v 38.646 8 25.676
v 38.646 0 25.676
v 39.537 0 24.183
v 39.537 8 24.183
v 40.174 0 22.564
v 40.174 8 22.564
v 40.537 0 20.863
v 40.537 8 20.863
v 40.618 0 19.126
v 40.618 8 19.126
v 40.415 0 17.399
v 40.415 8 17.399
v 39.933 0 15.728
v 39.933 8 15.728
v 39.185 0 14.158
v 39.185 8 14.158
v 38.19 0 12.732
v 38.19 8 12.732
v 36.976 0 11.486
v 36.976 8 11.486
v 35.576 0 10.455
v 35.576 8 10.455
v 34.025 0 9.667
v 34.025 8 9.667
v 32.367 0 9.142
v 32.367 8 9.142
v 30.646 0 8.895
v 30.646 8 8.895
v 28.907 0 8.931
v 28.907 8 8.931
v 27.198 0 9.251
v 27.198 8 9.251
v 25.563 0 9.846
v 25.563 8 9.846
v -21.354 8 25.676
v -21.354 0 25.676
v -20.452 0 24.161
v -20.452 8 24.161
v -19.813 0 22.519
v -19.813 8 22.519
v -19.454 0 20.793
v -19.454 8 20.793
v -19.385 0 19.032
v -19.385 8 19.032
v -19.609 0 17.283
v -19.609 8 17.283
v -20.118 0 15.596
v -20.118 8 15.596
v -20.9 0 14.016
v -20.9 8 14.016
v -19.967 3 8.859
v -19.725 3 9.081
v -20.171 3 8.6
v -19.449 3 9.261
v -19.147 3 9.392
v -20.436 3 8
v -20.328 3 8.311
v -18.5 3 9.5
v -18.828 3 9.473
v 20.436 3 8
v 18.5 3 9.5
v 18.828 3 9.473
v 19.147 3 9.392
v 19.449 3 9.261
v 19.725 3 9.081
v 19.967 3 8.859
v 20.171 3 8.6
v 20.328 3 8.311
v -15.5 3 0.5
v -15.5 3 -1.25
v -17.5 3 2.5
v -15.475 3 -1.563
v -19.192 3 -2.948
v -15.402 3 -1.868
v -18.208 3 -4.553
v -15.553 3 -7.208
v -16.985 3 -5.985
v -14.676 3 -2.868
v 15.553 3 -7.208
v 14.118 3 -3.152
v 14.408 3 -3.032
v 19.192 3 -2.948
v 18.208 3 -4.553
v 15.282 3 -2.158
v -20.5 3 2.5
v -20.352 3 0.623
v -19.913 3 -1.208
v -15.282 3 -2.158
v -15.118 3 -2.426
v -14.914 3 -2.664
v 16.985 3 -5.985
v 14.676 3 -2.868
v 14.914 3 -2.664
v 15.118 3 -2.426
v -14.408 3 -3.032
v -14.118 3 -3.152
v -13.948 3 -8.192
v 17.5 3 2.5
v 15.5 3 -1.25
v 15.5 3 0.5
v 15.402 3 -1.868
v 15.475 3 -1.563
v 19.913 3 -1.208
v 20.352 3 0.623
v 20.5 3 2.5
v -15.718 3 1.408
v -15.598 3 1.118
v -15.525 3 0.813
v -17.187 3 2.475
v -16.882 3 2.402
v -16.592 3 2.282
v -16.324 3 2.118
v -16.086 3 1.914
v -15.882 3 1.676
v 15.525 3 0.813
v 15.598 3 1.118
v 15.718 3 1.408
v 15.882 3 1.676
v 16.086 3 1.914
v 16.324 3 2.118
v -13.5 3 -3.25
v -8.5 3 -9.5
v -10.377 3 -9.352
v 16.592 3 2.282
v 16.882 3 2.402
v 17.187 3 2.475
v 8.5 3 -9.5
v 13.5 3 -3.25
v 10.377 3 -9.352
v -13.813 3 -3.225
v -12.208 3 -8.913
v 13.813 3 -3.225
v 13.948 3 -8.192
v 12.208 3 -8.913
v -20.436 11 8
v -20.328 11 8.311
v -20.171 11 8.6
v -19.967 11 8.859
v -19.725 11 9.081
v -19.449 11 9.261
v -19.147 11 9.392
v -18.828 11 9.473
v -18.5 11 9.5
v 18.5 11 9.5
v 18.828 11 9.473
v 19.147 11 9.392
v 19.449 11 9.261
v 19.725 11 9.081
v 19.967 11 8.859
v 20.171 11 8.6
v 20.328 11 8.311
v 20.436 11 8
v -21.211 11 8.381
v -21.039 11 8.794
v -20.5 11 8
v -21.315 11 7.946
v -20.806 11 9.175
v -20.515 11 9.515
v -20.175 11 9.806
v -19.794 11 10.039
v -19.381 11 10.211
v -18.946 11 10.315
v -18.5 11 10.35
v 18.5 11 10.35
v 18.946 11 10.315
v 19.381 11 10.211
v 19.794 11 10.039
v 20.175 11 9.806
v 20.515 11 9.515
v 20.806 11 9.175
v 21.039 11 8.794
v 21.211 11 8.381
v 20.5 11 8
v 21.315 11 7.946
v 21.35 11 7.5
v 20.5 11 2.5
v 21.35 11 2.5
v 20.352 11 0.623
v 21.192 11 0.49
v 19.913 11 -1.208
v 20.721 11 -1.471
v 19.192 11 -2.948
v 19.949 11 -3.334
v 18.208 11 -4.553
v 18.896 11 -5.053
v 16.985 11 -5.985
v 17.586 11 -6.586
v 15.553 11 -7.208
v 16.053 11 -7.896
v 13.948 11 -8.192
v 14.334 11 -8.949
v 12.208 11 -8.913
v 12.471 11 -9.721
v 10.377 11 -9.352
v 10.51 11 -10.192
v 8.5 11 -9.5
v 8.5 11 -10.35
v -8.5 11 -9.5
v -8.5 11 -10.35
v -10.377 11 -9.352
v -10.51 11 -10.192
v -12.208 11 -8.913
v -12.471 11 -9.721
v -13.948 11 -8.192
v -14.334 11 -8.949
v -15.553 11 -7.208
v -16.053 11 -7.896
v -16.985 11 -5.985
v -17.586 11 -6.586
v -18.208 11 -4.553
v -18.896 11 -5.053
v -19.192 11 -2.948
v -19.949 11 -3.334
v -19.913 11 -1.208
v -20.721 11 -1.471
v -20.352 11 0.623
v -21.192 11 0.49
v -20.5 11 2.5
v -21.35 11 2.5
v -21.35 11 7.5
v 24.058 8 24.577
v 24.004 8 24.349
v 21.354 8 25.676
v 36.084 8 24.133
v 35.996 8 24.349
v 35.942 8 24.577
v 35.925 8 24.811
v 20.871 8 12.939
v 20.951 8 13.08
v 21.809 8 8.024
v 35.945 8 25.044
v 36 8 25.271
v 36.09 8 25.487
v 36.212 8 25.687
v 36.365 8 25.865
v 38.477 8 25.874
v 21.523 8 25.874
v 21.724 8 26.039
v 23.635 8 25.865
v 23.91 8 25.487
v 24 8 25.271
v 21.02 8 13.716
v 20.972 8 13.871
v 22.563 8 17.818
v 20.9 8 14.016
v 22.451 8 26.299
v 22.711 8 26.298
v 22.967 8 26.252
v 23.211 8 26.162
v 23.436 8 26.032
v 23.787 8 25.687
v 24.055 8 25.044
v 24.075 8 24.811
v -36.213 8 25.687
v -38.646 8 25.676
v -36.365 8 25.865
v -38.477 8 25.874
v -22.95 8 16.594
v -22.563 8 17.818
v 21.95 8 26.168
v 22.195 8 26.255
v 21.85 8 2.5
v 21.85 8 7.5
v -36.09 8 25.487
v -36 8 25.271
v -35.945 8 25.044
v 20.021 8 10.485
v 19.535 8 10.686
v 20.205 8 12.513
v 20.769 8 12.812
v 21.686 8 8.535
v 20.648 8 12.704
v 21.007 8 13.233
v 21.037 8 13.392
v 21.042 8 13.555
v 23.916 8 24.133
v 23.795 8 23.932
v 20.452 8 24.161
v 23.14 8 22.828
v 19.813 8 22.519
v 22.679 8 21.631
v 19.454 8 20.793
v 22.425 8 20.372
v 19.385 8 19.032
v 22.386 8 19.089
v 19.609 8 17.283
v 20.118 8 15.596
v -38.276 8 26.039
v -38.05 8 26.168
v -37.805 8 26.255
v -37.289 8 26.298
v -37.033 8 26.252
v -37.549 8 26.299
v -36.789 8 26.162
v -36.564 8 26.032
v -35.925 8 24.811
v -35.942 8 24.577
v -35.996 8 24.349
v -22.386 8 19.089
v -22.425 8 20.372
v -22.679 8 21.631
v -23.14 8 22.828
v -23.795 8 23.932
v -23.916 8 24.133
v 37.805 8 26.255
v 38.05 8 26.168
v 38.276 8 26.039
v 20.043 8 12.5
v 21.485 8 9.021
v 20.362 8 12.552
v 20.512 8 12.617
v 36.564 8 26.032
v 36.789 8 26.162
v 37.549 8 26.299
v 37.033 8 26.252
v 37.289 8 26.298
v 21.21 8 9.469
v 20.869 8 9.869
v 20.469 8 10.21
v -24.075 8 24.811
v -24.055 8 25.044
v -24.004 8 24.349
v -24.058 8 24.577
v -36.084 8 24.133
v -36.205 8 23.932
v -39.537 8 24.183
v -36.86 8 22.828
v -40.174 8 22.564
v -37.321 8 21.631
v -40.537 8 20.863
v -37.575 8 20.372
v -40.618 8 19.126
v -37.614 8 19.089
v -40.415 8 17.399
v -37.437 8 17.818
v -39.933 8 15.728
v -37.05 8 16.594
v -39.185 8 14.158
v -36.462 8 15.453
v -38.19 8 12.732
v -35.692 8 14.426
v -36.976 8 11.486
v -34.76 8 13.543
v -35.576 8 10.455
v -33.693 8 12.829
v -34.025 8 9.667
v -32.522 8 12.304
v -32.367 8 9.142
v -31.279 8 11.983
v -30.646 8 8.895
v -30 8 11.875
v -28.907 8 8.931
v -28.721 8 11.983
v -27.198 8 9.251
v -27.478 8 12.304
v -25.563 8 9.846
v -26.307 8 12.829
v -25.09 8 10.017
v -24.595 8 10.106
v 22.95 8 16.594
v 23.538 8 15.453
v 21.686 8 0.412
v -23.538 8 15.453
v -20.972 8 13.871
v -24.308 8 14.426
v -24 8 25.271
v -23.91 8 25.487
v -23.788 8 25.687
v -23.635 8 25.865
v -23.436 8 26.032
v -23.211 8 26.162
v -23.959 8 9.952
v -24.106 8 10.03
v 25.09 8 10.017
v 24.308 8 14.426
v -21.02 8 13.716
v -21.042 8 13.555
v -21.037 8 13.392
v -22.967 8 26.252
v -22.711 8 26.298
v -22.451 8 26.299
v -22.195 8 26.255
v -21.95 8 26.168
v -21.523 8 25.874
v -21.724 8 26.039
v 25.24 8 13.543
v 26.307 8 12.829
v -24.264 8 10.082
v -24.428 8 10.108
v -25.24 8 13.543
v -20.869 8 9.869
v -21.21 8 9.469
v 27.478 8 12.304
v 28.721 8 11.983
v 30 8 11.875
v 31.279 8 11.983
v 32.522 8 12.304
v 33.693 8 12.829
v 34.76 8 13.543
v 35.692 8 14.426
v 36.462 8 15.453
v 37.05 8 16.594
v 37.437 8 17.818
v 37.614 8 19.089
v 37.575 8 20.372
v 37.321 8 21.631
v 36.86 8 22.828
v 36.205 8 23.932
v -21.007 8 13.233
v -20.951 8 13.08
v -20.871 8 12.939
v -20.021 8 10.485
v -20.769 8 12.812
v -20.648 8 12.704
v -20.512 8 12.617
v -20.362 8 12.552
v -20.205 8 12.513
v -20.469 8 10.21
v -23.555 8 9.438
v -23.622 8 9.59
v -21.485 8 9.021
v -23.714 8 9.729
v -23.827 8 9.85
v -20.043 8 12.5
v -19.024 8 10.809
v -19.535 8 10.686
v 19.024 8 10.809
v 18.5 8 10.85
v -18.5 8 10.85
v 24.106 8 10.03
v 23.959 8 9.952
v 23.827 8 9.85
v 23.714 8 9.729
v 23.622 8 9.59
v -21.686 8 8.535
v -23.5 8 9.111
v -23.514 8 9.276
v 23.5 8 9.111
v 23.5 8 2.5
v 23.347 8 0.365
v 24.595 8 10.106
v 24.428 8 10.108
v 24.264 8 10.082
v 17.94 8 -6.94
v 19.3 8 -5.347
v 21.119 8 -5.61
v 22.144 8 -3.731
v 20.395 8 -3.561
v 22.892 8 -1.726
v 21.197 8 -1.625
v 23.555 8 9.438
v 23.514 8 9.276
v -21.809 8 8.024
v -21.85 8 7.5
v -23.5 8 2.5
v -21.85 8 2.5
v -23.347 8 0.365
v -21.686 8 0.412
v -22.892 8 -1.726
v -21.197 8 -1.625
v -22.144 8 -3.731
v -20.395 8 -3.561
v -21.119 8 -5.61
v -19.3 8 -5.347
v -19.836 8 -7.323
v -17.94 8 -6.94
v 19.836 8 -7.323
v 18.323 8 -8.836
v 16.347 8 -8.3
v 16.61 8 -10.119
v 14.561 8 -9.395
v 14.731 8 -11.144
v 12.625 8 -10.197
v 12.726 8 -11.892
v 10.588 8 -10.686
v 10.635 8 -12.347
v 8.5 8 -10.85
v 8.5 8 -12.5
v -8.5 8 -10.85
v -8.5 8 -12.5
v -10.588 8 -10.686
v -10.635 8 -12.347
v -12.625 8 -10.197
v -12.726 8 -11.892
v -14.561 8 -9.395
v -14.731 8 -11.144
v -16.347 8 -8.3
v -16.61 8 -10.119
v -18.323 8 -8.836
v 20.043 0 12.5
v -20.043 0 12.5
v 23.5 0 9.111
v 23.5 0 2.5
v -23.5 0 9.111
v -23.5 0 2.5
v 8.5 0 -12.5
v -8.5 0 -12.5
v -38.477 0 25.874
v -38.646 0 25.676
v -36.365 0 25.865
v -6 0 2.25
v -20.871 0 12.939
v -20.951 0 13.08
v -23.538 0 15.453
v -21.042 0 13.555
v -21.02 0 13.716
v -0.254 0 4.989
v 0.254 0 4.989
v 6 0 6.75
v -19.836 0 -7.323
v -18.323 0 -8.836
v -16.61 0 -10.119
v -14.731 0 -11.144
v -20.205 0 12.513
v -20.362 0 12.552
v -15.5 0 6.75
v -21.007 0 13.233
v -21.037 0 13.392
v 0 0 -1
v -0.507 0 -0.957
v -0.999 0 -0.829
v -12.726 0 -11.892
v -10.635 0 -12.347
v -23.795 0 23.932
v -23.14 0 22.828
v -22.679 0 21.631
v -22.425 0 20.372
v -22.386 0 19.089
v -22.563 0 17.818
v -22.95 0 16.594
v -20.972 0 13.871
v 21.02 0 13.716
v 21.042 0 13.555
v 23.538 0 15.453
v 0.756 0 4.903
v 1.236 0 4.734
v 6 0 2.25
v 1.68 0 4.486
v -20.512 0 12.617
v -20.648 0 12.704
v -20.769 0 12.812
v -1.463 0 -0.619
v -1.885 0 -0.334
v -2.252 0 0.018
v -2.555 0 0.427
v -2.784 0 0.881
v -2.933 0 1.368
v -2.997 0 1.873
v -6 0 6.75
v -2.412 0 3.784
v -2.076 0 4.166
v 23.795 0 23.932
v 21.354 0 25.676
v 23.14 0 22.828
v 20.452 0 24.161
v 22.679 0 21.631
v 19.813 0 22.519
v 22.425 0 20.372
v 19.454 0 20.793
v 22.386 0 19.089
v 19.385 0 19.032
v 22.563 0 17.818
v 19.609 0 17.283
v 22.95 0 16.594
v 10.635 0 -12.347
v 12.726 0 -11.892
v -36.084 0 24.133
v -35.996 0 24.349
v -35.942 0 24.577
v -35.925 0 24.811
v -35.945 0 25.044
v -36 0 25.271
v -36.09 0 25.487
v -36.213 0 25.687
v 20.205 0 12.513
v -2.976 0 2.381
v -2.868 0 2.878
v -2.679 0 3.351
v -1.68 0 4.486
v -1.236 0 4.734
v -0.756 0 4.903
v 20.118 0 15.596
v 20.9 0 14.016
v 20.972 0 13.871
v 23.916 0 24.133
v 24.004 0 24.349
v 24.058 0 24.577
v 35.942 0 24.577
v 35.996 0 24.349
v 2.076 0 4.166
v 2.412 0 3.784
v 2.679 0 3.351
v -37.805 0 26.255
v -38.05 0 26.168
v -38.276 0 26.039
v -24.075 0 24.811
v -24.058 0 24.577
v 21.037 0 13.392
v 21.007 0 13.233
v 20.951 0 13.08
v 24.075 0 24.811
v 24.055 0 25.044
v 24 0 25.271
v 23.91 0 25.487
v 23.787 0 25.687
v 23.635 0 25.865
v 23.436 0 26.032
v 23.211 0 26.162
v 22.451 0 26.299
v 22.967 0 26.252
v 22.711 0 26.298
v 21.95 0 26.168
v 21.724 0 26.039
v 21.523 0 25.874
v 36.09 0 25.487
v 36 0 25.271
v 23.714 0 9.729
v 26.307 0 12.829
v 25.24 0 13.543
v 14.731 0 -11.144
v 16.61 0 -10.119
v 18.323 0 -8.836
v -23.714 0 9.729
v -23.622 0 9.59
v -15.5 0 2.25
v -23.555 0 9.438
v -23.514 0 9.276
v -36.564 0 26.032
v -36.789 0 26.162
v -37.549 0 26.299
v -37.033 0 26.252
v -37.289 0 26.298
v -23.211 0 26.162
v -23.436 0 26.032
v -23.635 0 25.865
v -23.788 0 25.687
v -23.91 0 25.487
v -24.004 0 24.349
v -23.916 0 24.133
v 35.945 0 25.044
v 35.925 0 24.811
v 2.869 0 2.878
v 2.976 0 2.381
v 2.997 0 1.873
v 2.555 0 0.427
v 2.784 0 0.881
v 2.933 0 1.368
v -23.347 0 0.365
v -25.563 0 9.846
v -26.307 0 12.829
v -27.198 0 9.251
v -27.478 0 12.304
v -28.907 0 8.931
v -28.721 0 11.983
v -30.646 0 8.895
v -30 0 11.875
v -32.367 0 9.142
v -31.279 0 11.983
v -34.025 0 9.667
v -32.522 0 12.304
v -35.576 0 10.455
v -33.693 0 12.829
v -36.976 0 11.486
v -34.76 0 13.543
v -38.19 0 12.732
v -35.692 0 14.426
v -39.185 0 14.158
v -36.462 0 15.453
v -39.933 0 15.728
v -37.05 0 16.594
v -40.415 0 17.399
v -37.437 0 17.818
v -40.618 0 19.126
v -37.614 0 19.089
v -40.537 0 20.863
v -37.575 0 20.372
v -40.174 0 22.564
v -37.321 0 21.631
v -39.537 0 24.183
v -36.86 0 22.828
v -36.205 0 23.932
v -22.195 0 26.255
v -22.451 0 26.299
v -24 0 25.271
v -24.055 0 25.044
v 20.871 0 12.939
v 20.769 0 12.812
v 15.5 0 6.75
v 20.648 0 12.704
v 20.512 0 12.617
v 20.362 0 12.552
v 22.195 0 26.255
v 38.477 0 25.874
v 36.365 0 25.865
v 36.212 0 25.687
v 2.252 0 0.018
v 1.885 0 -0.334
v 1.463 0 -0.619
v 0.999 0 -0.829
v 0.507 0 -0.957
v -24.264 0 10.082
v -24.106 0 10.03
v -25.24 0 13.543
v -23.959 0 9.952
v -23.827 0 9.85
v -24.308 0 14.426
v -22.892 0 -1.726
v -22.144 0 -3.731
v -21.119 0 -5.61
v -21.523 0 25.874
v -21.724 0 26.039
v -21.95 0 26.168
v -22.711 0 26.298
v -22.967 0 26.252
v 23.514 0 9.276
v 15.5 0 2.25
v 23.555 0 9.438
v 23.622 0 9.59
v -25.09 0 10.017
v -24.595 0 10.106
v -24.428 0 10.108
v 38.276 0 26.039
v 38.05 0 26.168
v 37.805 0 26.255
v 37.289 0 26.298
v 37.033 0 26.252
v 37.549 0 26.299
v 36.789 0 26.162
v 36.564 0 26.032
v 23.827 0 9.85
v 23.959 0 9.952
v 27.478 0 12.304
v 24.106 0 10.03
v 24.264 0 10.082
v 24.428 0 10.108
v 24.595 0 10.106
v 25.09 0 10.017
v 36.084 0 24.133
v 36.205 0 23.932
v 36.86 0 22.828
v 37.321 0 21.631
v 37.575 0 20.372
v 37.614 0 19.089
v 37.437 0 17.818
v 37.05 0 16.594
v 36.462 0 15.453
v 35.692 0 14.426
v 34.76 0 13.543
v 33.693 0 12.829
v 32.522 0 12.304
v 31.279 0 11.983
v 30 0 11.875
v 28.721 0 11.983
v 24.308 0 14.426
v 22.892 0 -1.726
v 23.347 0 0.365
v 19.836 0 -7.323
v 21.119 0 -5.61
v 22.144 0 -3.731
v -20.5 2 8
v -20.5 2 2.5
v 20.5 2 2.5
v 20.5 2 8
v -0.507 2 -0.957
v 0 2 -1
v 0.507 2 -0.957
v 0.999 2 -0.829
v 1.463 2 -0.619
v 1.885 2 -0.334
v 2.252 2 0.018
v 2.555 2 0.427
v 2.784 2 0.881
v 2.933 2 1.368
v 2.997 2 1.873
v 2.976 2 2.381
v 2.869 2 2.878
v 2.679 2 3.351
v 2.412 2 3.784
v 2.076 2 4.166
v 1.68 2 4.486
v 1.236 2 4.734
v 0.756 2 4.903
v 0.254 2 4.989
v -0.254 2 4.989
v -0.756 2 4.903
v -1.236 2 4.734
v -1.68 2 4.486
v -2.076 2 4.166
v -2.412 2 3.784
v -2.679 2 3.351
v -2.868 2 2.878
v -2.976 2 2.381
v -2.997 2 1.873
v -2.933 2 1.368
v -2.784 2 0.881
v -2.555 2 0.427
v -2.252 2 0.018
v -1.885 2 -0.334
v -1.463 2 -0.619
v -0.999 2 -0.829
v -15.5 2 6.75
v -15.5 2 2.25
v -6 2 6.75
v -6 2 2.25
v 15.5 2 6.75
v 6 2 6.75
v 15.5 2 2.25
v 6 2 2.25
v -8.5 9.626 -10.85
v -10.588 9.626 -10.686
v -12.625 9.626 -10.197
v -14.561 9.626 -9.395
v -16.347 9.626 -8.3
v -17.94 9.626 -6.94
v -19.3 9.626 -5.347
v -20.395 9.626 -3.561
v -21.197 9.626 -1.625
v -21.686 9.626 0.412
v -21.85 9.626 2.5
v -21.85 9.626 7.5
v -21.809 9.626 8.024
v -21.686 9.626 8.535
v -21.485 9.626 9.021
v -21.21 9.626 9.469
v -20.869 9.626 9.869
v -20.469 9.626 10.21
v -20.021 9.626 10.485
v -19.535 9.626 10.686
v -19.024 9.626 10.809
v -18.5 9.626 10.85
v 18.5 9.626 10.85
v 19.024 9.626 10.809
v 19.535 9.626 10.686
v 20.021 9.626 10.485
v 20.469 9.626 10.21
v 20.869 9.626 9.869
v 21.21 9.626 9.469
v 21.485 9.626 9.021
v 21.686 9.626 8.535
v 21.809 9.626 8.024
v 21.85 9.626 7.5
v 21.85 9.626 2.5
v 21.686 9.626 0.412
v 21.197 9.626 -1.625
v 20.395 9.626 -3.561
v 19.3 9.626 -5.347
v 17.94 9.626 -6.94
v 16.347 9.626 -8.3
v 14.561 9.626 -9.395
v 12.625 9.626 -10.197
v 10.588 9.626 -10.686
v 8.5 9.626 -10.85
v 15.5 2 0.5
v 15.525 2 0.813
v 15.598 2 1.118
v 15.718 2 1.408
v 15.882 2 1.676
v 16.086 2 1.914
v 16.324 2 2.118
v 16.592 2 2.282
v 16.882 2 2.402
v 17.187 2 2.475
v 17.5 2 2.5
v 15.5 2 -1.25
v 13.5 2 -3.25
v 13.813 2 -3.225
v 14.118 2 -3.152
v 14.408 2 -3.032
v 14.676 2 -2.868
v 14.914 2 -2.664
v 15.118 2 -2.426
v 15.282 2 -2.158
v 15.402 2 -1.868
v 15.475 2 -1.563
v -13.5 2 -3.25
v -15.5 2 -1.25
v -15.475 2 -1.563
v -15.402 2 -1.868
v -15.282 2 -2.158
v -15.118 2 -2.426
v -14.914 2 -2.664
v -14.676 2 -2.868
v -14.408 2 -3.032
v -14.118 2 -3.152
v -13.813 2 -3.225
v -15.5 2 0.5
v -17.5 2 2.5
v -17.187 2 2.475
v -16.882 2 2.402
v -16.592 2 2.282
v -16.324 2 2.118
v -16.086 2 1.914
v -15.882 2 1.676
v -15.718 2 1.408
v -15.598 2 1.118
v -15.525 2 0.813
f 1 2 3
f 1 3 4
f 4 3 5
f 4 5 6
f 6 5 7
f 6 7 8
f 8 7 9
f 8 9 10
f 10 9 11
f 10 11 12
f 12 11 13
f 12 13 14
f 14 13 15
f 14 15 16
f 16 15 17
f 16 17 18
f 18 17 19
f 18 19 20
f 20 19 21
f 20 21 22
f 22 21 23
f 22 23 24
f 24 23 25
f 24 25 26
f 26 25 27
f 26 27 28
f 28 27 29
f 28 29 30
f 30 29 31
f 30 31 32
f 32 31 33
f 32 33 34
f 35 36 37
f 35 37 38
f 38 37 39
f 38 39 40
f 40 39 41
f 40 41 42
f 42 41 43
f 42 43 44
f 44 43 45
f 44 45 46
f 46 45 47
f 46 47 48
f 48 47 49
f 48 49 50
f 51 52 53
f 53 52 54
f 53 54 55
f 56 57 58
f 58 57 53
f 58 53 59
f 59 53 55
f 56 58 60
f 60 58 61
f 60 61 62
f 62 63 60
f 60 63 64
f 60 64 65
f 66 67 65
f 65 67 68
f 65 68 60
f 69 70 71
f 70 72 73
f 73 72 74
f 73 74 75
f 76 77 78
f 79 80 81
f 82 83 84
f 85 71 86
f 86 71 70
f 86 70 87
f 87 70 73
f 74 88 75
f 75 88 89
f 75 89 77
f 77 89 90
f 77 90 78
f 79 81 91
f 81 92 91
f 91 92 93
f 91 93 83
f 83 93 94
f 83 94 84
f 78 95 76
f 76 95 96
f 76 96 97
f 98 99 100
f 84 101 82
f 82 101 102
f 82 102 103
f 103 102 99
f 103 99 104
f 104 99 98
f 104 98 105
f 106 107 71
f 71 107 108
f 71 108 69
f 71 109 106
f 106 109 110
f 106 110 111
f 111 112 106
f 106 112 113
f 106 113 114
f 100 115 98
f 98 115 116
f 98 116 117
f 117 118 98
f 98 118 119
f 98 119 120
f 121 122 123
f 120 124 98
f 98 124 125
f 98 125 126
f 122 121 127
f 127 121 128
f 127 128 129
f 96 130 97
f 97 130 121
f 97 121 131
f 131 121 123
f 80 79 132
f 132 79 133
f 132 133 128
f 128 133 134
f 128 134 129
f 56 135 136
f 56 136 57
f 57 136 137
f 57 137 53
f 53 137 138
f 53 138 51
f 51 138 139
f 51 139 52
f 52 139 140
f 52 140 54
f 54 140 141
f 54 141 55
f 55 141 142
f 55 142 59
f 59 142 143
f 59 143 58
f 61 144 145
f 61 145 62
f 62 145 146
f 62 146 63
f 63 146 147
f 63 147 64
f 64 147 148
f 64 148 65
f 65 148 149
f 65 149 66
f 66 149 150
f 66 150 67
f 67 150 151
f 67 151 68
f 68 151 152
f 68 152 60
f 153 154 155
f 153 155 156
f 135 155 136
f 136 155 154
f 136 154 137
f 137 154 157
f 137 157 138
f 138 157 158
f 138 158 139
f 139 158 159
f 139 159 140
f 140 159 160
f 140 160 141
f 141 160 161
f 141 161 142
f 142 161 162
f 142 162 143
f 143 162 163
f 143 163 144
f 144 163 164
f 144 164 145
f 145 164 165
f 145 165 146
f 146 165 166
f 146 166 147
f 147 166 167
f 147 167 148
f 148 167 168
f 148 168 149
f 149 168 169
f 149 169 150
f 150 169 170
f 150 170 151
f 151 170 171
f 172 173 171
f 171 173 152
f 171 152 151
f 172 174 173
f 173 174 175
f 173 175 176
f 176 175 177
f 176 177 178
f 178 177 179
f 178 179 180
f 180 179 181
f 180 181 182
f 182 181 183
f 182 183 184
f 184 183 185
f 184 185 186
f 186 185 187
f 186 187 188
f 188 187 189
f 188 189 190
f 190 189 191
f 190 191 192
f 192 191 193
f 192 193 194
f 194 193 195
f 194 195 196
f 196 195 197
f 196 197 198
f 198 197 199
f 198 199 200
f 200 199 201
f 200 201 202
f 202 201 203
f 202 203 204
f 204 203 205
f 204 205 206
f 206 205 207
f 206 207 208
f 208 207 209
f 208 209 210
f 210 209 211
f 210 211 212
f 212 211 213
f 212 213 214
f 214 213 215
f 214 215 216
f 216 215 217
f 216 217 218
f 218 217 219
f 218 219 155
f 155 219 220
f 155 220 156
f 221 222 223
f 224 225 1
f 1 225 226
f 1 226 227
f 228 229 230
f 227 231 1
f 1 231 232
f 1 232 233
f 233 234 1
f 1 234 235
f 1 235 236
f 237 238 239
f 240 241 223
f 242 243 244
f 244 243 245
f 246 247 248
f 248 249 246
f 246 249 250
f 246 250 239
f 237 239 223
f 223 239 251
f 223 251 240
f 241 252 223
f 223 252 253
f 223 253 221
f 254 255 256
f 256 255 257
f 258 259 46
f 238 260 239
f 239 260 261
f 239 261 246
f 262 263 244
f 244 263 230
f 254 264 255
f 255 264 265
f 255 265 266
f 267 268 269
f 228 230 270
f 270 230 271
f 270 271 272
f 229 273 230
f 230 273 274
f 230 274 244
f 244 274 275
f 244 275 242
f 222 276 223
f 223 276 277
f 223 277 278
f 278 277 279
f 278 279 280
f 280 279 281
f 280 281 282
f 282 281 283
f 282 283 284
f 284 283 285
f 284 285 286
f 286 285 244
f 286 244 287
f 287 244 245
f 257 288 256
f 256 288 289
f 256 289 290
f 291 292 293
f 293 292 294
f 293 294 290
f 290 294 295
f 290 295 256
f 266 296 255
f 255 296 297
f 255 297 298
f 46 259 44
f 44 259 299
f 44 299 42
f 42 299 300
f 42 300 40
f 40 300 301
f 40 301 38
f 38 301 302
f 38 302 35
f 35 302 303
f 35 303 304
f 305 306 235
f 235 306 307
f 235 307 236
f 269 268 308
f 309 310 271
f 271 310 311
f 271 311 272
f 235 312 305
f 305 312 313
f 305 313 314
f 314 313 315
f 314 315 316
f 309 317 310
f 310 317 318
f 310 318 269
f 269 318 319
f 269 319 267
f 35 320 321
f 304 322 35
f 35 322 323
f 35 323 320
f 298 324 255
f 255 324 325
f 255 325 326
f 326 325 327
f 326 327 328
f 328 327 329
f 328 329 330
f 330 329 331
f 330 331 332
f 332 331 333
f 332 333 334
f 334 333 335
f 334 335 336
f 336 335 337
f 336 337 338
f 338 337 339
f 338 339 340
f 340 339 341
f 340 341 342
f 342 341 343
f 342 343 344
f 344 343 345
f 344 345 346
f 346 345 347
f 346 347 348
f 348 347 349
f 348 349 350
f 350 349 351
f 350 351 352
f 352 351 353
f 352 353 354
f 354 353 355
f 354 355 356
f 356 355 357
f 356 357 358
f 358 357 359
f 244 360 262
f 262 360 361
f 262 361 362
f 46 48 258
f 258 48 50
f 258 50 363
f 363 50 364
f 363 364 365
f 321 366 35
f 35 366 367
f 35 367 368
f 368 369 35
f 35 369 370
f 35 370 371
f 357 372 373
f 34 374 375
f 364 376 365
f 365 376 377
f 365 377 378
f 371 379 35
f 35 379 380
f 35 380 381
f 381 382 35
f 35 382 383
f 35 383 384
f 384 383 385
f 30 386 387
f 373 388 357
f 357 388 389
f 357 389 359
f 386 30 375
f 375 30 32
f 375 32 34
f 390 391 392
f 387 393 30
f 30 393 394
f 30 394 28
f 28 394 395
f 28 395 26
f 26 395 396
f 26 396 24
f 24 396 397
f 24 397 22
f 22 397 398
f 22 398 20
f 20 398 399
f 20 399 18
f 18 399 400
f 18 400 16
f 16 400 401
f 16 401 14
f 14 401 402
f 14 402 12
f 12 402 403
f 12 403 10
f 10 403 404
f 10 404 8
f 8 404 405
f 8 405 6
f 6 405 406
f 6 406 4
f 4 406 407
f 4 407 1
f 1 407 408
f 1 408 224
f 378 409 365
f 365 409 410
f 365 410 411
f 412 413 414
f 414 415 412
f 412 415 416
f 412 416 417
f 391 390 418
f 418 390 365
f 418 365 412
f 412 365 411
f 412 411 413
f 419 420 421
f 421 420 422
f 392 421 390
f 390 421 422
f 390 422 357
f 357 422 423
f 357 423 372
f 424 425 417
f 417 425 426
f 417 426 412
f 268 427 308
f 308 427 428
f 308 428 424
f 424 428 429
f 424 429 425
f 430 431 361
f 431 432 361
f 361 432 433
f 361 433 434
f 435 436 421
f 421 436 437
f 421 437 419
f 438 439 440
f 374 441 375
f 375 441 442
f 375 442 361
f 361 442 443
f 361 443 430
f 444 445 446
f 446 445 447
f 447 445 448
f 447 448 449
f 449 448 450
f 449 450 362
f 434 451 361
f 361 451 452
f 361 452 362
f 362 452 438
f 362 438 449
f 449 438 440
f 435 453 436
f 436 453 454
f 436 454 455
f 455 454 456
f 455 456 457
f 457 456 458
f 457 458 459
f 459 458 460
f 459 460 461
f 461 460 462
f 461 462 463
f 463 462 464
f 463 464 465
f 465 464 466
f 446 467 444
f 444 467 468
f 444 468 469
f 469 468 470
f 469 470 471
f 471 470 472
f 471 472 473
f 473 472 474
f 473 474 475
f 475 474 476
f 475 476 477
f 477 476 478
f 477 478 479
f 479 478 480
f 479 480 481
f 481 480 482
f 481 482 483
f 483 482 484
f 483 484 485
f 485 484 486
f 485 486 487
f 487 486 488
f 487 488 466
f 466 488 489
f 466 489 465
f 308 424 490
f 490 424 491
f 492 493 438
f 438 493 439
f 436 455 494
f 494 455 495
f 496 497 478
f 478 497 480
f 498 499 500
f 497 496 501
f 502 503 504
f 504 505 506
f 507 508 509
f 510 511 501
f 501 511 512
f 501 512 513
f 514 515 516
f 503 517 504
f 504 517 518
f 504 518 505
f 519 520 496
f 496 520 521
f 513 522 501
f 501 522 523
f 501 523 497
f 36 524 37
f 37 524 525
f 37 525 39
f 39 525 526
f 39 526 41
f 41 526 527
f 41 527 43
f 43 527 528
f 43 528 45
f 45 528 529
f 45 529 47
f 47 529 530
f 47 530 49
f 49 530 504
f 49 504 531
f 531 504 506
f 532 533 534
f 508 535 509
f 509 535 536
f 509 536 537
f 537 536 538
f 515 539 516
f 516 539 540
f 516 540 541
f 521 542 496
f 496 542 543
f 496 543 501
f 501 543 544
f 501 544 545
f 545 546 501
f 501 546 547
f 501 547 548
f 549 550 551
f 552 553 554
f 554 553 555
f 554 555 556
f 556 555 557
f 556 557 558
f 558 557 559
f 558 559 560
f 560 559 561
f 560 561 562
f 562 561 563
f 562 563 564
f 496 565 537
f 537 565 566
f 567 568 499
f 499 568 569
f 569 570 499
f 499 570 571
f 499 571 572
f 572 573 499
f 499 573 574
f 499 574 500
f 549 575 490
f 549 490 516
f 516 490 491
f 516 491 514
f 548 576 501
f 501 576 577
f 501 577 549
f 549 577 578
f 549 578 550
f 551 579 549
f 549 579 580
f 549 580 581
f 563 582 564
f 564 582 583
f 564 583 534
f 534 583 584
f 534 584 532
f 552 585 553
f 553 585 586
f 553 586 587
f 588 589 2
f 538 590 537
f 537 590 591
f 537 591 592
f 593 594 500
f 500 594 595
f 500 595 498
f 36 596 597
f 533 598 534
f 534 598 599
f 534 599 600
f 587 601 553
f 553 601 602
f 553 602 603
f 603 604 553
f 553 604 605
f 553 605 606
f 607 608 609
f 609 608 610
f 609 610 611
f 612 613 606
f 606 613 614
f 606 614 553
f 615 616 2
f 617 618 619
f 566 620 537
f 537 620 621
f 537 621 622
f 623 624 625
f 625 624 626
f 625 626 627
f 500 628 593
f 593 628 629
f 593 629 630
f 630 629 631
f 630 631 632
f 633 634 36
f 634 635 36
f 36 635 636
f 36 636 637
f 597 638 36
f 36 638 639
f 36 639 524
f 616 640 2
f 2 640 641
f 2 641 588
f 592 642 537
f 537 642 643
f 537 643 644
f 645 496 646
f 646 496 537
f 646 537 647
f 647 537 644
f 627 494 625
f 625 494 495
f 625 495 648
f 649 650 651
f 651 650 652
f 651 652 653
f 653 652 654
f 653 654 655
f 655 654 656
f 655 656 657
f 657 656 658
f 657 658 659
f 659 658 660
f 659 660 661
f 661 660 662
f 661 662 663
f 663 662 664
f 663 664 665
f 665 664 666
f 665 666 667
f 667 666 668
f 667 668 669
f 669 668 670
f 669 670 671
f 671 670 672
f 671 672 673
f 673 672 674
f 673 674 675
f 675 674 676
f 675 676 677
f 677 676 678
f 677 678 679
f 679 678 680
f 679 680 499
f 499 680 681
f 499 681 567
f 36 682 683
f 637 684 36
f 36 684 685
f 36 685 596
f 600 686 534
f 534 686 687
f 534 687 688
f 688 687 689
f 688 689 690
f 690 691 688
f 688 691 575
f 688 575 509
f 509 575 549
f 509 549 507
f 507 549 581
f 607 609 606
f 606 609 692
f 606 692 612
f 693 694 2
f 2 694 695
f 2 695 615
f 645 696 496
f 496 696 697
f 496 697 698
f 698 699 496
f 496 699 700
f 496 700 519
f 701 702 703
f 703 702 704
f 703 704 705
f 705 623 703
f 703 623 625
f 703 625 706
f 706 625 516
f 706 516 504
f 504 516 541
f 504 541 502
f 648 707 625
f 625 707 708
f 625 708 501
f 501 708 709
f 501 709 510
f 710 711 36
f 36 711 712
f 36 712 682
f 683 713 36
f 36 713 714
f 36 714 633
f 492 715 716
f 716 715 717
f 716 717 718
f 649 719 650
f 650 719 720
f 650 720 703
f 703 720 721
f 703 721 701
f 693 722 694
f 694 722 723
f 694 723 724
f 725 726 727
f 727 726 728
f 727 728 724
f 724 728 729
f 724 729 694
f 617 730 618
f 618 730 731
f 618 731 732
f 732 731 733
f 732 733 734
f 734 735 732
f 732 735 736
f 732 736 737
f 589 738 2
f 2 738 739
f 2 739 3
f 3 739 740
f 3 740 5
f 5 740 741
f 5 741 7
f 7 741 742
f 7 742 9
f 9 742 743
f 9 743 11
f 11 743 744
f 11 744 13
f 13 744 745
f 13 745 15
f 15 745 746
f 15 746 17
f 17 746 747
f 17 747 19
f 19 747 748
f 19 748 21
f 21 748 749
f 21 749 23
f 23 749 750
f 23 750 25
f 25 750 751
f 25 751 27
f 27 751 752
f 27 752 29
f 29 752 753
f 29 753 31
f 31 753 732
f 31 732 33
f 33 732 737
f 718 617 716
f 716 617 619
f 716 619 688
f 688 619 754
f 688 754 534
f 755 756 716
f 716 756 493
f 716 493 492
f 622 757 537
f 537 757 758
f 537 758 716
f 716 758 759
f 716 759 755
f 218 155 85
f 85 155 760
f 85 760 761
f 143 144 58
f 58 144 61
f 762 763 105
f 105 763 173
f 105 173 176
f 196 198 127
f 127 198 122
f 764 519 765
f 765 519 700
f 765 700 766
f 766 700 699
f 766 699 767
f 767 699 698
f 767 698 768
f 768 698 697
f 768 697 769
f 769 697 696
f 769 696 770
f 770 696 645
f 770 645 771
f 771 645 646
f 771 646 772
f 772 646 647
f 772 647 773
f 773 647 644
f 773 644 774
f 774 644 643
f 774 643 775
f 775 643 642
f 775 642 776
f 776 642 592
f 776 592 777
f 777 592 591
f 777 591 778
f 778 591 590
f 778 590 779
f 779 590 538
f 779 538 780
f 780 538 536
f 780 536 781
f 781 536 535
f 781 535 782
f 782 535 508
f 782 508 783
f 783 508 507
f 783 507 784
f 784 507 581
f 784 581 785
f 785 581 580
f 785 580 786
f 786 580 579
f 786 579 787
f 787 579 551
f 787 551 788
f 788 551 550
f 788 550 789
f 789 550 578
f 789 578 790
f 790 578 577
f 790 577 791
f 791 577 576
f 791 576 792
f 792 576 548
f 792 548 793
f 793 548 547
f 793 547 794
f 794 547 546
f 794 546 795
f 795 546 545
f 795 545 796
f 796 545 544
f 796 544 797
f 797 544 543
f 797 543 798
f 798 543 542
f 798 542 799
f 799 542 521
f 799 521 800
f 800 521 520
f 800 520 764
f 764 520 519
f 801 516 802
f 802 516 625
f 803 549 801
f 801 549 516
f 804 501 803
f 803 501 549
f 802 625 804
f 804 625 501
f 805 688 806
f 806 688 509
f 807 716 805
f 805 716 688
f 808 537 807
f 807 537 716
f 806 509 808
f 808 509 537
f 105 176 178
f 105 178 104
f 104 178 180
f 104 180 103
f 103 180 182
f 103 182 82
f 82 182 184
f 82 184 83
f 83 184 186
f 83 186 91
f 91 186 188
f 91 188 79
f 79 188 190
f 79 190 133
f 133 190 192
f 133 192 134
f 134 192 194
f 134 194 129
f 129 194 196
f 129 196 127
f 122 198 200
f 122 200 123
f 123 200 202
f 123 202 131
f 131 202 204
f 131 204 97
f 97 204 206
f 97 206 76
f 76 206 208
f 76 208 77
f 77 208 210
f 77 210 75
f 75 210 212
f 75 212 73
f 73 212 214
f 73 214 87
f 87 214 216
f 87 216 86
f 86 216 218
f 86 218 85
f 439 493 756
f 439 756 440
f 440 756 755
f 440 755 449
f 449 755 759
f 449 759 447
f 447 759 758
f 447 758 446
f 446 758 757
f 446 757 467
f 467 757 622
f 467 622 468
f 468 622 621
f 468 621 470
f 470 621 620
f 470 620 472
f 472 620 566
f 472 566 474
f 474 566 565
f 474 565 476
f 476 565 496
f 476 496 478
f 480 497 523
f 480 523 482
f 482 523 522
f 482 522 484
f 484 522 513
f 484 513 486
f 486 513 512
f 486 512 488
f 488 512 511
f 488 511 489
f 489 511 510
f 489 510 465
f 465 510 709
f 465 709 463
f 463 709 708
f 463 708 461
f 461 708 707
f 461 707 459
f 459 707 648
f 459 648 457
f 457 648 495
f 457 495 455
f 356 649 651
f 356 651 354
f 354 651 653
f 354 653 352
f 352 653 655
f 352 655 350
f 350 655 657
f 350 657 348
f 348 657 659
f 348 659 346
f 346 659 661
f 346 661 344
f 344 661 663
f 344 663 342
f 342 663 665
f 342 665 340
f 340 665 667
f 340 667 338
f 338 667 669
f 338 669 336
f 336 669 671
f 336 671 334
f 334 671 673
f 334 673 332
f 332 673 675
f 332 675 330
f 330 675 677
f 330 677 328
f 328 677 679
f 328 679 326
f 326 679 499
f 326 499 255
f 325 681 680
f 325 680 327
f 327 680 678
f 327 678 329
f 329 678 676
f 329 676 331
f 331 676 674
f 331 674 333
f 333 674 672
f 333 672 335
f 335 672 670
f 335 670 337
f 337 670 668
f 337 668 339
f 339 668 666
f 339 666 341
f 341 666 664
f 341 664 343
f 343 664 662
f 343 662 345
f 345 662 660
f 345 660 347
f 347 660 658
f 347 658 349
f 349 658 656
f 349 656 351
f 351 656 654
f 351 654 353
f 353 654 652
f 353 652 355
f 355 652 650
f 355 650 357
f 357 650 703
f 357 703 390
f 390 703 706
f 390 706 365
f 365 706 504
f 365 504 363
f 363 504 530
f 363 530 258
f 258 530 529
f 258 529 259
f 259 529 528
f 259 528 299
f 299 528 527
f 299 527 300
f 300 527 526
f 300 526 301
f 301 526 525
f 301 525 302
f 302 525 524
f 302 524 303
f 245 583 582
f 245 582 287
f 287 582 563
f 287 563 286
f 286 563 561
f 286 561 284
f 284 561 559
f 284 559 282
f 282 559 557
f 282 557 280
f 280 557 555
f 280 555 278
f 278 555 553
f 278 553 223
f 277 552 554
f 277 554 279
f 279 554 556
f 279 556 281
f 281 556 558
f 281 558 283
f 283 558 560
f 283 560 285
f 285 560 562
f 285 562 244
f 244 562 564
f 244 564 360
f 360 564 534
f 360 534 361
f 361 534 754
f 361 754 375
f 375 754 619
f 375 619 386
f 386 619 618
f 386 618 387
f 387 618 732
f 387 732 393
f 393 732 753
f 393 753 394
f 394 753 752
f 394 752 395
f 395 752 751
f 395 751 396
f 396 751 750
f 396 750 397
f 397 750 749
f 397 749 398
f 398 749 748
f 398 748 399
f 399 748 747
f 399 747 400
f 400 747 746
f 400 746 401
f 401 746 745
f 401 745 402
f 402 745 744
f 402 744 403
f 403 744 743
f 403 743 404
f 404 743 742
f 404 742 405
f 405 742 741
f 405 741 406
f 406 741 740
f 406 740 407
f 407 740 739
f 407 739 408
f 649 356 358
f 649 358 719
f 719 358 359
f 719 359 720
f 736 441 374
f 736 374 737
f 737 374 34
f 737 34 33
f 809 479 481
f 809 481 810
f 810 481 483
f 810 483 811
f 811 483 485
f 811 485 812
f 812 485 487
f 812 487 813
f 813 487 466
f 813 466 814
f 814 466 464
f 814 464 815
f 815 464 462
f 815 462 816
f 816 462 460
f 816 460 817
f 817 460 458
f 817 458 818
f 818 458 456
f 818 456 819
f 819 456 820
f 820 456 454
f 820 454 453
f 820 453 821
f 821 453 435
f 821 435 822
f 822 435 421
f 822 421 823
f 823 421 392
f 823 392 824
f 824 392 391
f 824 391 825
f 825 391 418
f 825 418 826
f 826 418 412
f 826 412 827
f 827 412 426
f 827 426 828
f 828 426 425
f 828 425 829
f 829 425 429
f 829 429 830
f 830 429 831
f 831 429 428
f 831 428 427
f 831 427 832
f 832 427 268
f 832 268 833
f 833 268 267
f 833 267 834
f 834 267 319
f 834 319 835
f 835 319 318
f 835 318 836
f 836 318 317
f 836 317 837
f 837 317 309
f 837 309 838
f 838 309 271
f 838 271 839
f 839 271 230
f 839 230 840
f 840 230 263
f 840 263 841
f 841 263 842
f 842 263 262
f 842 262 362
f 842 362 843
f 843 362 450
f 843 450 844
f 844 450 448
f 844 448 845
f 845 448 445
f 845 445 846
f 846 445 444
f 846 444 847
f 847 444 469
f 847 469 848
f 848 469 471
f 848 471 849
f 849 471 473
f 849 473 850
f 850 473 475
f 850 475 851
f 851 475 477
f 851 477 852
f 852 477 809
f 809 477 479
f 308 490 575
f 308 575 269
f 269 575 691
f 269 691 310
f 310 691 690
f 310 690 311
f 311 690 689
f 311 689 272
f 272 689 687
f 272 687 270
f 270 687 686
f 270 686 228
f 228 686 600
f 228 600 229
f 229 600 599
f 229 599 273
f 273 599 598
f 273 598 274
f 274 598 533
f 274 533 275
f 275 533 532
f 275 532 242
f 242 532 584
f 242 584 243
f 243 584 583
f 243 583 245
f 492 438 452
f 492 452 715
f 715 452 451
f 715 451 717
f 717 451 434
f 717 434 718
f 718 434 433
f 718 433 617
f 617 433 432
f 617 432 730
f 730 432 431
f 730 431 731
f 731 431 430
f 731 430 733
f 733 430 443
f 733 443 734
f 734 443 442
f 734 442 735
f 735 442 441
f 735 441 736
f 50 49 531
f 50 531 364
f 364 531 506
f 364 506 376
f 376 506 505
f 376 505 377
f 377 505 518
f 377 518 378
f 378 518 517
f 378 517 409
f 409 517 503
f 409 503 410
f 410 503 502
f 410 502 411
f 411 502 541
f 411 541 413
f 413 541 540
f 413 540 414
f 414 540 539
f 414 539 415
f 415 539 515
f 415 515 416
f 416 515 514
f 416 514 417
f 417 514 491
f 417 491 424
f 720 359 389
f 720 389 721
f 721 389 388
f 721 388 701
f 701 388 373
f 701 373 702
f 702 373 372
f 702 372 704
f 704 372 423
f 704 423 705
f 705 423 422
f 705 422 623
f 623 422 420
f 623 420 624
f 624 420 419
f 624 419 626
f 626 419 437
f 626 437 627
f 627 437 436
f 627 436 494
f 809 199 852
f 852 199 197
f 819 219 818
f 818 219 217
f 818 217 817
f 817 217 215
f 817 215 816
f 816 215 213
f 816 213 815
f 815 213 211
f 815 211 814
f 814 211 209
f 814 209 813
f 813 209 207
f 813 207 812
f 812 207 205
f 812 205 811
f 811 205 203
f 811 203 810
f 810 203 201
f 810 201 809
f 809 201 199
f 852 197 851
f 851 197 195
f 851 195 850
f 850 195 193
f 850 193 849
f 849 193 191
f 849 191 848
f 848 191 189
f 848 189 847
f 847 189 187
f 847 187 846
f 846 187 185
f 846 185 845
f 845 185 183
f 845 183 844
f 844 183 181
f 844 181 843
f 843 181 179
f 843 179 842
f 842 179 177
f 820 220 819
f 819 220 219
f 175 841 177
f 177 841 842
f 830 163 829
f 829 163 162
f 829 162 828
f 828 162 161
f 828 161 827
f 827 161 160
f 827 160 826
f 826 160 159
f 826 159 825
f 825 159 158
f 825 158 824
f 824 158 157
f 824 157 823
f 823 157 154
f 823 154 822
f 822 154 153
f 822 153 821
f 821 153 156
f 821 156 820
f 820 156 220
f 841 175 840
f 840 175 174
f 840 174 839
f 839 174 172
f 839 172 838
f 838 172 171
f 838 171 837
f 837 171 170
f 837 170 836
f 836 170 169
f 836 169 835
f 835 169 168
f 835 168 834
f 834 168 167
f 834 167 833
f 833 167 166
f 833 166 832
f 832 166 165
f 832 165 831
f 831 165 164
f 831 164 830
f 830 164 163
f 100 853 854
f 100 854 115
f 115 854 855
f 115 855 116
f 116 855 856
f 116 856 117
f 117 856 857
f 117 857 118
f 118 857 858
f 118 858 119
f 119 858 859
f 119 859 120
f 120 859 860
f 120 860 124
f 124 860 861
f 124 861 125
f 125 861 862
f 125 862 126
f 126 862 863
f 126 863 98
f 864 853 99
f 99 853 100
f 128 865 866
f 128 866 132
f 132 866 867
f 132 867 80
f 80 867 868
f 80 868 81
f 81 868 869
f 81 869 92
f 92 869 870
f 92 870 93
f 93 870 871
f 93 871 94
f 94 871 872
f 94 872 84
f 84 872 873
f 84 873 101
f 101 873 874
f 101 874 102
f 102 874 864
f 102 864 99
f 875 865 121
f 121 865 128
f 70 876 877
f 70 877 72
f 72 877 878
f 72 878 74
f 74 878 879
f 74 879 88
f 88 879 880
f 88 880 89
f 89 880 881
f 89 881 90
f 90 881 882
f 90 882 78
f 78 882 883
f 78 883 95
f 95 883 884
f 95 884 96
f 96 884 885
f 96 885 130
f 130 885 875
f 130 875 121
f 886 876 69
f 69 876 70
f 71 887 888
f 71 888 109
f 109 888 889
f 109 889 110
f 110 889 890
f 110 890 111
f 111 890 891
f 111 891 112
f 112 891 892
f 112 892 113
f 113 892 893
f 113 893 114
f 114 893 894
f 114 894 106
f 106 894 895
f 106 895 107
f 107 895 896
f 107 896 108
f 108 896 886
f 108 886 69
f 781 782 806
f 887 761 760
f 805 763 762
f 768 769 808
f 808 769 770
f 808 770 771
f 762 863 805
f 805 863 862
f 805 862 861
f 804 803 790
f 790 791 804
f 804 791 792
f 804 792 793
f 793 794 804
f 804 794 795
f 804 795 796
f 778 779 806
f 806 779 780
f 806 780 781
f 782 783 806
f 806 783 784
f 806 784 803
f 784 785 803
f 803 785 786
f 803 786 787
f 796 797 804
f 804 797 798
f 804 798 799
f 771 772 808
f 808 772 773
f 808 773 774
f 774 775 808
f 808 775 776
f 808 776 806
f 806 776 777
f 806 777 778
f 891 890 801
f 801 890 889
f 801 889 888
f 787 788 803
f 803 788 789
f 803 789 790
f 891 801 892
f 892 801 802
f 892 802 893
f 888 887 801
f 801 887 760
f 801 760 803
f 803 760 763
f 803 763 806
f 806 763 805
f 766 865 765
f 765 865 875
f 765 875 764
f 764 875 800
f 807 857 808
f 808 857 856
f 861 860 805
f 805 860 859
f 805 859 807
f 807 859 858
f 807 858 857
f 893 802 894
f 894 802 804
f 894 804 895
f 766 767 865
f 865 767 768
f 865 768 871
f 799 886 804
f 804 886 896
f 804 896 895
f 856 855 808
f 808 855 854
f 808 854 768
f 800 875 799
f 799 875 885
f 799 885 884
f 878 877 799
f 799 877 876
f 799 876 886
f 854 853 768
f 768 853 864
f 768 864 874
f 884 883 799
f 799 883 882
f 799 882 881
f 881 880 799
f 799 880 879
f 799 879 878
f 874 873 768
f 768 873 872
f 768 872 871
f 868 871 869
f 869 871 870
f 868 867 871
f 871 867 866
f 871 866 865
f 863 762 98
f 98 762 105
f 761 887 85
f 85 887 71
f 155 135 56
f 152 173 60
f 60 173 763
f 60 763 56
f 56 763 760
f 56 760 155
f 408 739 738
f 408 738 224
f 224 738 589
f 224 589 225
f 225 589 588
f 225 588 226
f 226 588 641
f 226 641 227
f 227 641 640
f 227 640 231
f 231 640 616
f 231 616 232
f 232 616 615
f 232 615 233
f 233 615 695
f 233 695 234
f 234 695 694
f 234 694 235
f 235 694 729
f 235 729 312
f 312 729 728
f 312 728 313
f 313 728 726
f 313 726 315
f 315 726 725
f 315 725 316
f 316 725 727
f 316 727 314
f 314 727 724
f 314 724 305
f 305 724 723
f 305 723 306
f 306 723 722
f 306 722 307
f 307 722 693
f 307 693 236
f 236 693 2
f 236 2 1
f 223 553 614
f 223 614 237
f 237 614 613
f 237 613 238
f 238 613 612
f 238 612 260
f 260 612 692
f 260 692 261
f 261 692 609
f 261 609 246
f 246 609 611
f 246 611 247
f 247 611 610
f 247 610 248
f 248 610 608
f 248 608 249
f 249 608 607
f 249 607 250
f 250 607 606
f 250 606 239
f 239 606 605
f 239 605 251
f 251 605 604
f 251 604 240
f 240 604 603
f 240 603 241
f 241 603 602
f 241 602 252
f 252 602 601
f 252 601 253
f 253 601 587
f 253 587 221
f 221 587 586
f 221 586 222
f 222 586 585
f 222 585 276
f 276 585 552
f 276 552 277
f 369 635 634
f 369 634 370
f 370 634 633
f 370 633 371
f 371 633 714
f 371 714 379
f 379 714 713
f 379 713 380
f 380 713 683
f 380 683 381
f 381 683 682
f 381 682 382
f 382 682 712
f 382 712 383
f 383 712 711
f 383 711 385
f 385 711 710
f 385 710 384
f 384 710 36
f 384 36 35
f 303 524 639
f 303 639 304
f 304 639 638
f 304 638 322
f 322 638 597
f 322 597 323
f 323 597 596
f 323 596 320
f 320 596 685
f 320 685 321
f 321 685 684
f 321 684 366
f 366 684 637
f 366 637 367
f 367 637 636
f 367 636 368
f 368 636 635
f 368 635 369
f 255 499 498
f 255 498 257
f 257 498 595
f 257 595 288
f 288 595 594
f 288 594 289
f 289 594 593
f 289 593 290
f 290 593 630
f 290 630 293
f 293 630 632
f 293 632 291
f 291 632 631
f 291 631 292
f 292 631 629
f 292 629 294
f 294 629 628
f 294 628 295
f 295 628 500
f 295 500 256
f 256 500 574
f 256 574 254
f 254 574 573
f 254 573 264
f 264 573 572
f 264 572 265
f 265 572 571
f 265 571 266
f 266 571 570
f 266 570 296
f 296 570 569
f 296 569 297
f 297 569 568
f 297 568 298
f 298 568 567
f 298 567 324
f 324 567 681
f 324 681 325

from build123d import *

# Parameters (mm, degrees)
SKETCH1_W               = 47
SKETCH1_H               = 25
BOSS_EXTRUDE1_DEPTH     = 8
SHELL1_T                = -3
SKETCH4_R               = 3
SKETCH4_W               = 9.5
SKETCH4_H               = 4.5
CUT_EXTRUDE4_DEPTH      = 28.793884219
FILLET2_R               = 12
FILLET3_R               = 15
SKETCH5_R               = 7.625
BOSS_EXTRUDE3_DEPTH     = 8
FILLET7_R               = 2
FILLET9_R               = 3
FILLET10_R              = 3
BOSS_EXTRUDE4_DEPTH     = 3
FILLET11_R              = 1
CHAMFER1_SIZE           = 0.5
CHAMFER1_SIZE2          = 1.37373871
CUT_EXTRUDE5_DEPTH      = 10
CUT_EXTRUDE5_DEPTH_BACK = 1
CUT_EXTRUDE6_DEPTH      = 10
FILLET12_R              = 1.5


# Some blends are built 0.0001 mm under size
with BuildPart() as part:
    # Sketch1 → Boss-Extrude1 (new body)
    with BuildSketch(Plane(origin=(0, 0, 0), x_dir=(1, 0, 0), z_dir=(0, 1, 0))):
        Rectangle(SKETCH1_W, SKETCH1_H)
    extrude(amount=BOSS_EXTRUDE1_DEPTH)

    # Shell1
    shell1_openings = [part.faces().sort_by_distance(p)[0] for p in [
        (0, 8, 0),
    ]]
    offset(amount=SHELL1_T, openings=shell1_openings, kind=Kind.INTERSECTION)

    # Sketch4 → Cut-Extrude4 (cut, through all)
    with BuildSketch(Plane.XZ):
        with Locations(Location((0, 2, 0), (0, 0, 270))):
            Circle(SKETCH4_R)
        with Locations((10.75, 4.5)):
            Rectangle(SKETCH4_W, SKETCH4_H)
        with Locations((-10.75, 4.5)):
            Rectangle(SKETCH4_W, SKETCH4_H)
    extrude(amount=-CUT_EXTRUDE4_DEPTH, mode=Mode.SUBTRACT)

    # Fillet2
    fillet2_edges = [part.edges().sort_by_distance(p)[0] for p in [
        (-20.5, 5.5, -9.5),
        (20.5, 5.5, -9.5),
    ]]
    fillet(fillet2_edges, radius=FILLET2_R)

    # Fillet3
    fillet3_edges = [part.edges().sort_by_distance(p)[0] for p in [
        (-23.5, 4, -12.5),
        (23.5, 4, -12.5),
    ]]
    fillet(fillet3_edges, radius=FILLET3_R)

    # Sketch5 → Boss-Extrude3 (add)
    # profile 1 of 2: a face of its own
    with BuildSketch(Plane(origin=(0, 0, 0), x_dir=(1, 0, 0), z_dir=(0, 1, 0))):
        with BuildLine():
            Line((-24.109061312, -10.65763231), (-23.023781022, -9.5))
            Line((-23.023781022, -9.5), (-18.817115042, -9.5))
            Line((-18.817115042, -9.5), (-21.851077989, -12.681958121))
            ThreePointArc((-21.851077989, -12.681958121), (-37.092523941, -27.411177481), (-24.109061312, -10.65763231))
        make_face()
        with Locations(Location((-30, -19.5, 0), (0, 0, 270))):
            Circle(SKETCH5_R, mode=Mode.SUBTRACT)
    # profile 2 of 2: a face of its own
    with BuildSketch(Plane(origin=(0, 0, 0), x_dir=(1, 0, 0), z_dir=(0, 1, 0))):
        with BuildLine():
            Line((21.851077989, -12.681958121), (18.817115042, -9.5))
            Line((18.817115042, -9.5), (23.023781022, -9.5))
            Line((23.023781022, -9.5), (24.109061312, -10.65763231))
            ThreePointArc((24.109061312, -10.65763231), (37.092523941, -27.411177481), (21.851077989, -12.681958121))
        make_face()
        with Locations(Location((30, -19.5, 0), (0, 0, 90))):
            Circle(SKETCH5_R, mode=Mode.SUBTRACT)
    extrude(amount=BOSS_EXTRUDE3_DEPTH)

    # Fillet7
    fillet7_edges = [part.edges().sort_by_distance(p)[0] for p in [
        (-20.5, 5.5, 9.5),
        (20.5, 5.5, 9.5),
    ]]
    fillet(fillet7_edges, radius=FILLET7_R)

    # Fillet9
    # the kernel refuses this fillet: 3 mm, written as the material it adds along each edge
    with BuildSketch(Plane(origin=(-24.109061312, 0, 10.65763231), x_dir=(-0.8731241588548913, 0, -0.48749790073798127), z_dir=(0, 1, 0))) as fillet9_piece_1:
        with BuildLine():
            CenterArc((1.900937986, -2.990768498), FILLET9_R, 94.495982628, 40.36086399)
            Line((-0.215075627, -0.864154666), (-0.2573959, -0.82162239))
            ThreePointArc((-0.2573959, -0.82162239), (-0.165761599, -0.417586273), (-0.058223785, 0.01449106))
            Line((-0.058223785, 0.01449106), (0.004703352, 0.05981537))
            ThreePointArc((0.004703352, 0.05981537), (0.8328852, 0.027305096), (1.661067049, 0.05981537))
            Line((1.661067049, 0.05981537), (1.6657704, 0))
        make_face()
    extrude(amount=8)
    with BuildSketch(Plane(origin=(24.109061312, 0, 10.65763231), x_dir=(-0.6839411288813303, 0, -0.7295372041400846), z_dir=(0, 1, 0))) as fillet9_piece_2:
        with BuildLine():
            CenterArc((2.443120942, -2.566986852), FILLET9_R, 121.167021746, 40.36086399)
            Line((-0.402312981, -1.616457637), (-0.45922166, -1.597447053))
            ThreePointArc((-0.45922166, -1.597447053), (-0.227653258, -0.801634155), (-0.059180564, 0.009882353))
            Line((-0.059180564, 0.009882353), (0, 0.06))
            ThreePointArc((0, 0.06), (0.44525858, 0.06), (0.859465085, 0.051339737))
            Line((0.859465085, 0.051339737), (0.89051716, 0))
        make_face()
    extrude(amount=8)

    # Fillet10
    # the kernel refuses this fillet: 3 mm, written as the material it adds along each edge
    with BuildSketch(Plane(origin=(-21.851077989, 0, 12.681958121), x_dir=(0.6041926909004034, 0, 0.796838247238754), z_dir=(0, 1, 0))) as fillet10_piece_1:
        with BuildLine():
            CenterArc((1.162533412, 2.99655072), FILLET10_R, 246.365543593, 20.886670937)
            Line((-0.040166708, 0.248185312), (-0.064220711, 0.193218004))
            ThreePointArc((-0.064220711, 0.193218004), (-0.07931268, 0.114506887), (-0.059229326, -0.009585769))
            Line((-0.059229326, -0.009585769), (0.002876371, -0.059931014))
            ThreePointArc((0.002876371, -0.059931014), (0.509357423, -0.047783801), (1.015838475, -0.059931014))
            Line((1.015838475, -0.059931014), (1.018714846, 0))
        make_face()
    extrude(amount=8)
    with BuildSketch(Plane(origin=(21.851077989, 0, 12.681958121), x_dir=(-0.6041926909004038, 0, 0.7968382472387535), z_dir=(0, 1, 0))) as fillet10_piece_2:
        with BuildLine():
            CenterArc((1.162533412, -2.99655072), FILLET10_R, 92.74778547, 20.886670937)
            Line((-0.040166708, -0.248185312), (-0.064220711, -0.193218004))
            ThreePointArc((-0.064220711, -0.193218004), (-0.07931268, -0.114506887), (-0.059229326, 0.009585769))
            Line((-0.059229326, 0.009585769), (0.002876371, 0.059931014))
            ThreePointArc((0.002876371, 0.059931014), (0.509357423, 0.047783801), (1.015838475, 0.059931014))
            Line((1.015838475, 0.059931014), (1.018714846, 0))
        make_face()
    extrude(amount=8)

    # Sketch6 → Boss-Extrude4 (add)
    with BuildSketch(Plane(origin=(0, 8, 0), x_dir=(1, 0, 0), z_dir=(0, 1, 0))):
        with BuildLine():
            Line((-21.85, -2.5), (-21.85, -7.5))
            ThreePointArc((-21.85, -7.5), (-20.868807717, -9.868807717), (-18.5, -10.85))
            Line((-18.5, -10.85), (18.5, -10.85))
            ThreePointArc((18.5, -10.85), (20.868807717, -9.868807717), (21.85, -7.5))
            Line((21.85, -7.5), (21.85, -2.5))
            ThreePointArc((21.85, -2.5), (17.939875529, 6.939875529), (8.5, 10.85))
            Line((8.5, 10.85), (-8.5, 10.85))
            ThreePointArc((-8.5, 10.85), (-17.939875529, 6.939875529), (-21.85, -2.5))
        make_face()
        with BuildLine():
            Line((-18.5, -9.5), (18.5, -9.5))
            ThreePointArc((18.5, -9.5), (19.914213562, -8.914213562), (20.5, -7.5))
            Line((20.5, -7.5), (20.5, -2.5))
            ThreePointArc((20.5, -2.5), (16.985281374, 5.985281374), (8.5, 9.5))
            Line((8.5, 9.5), (-8.5, 9.5))
            ThreePointArc((-8.5, 9.5), (-16.985281374, 5.985281374), (-20.5, -2.5))
            Line((-20.5, -2.5), (-20.5, -7.5))
            ThreePointArc((-20.5, -7.5), (-19.914213562, -8.914213562), (-18.5, -9.5))
        make_face(mode=Mode.SUBTRACT)
    extrude(amount=BOSS_EXTRUDE4_DEPTH)

    # Fillet11
    fillet11_edges = [part.edges().sort_by_distance(p)[0] for p in [
        (21.677582872, 4, 12.5),
        (23.5, 4, 10.00796691),
        (-21.677582872, 4, 12.5),
        (-23.5, 4, 10.00796691),
    ]]
    fillet(fillet11_edges, radius=FILLET11_R)

    # Chamfer1
    chamfer1_edges = [part.edges().sort_by_distance(p)[0] for p in [
        (-17.939875529, 11, -6.939875529),
        (-21.85, 11, 5),
        (-20.868807717, 11, 9.868807717),
        (0, 11, 10.85),
        (20.868807717, 11, 9.868807717),
        (21.85, 11, 5),
        (17.939875529, 11, -6.939875529),
        (0, 11, -10.85),
    ]]
    chamfer1_side = [part.faces().sort_by_distance(p)[0] for p in [
        (-21.362088123, 11, 5),
    ]]
    chamfer(chamfer1_edges, length=CHAMFER1_SIZE, length2=CHAMFER1_SIZE2, reference=chamfer1_side[0])

    # Sketch7 → Cut-Extrude5 (cut, two sides: drawn at the far end of the back side and taken through both)
    with BuildSketch(Plane(origin=(0, 3, 0), x_dir=(1, 0, 0), z_dir=(0, 1, 0)).offset(-CUT_EXTRUDE5_DEPTH_BACK)):
        with BuildLine():
            Line((-20.5, -6.75), (-20.5, -2.5))
            Line((-20.5, -2.5), (-17.5, -2.5))
            ThreePointArc((-17.5, -2.5), (-16.085786438, -1.914213562), (-15.5, -0.5))
            Line((-15.5, -0.5), (-15.5, 1.25))
            ThreePointArc((-15.5, 1.25), (-14.914213562, 2.664213562), (-13.5, 3.25))
            Line((-13.5, 3.25), (13.5, 3.25))
            ThreePointArc((13.5, 3.25), (14.914213562, 2.664213562), (15.5, 1.25))
            Line((15.5, 1.25), (15.5, -0.5))
            ThreePointArc((15.5, -0.5), (16.085786438, -1.914213562), (17.5, -2.5))
            Line((17.5, -2.5), (20.5, -2.5))
            Line((20.5, -2.5), (20.5, -6.75))
            Line((20.5, -6.75), (20.5, -8))
            Line((20.5, -8), (-20.5, -8))
            Line((-20.5, -8), (-20.5, -6.75))
        make_face()
    extrude(amount=CUT_EXTRUDE5_DEPTH + CUT_EXTRUDE5_DEPTH_BACK, mode=Mode.SUBTRACT)

    # Sketch8 → Cut-Extrude6 (cut)
    with BuildSketch(Plane.XZ):
        Polygon((-30, 19.5), (-42.679355302, 32.179355302), (-17.320644698, 32.179355302), align=None)
        Polygon((42.679355302, 32.179355302), (17.320644698, 32.179355302), (30, 19.5), align=None)
    extrude(amount=-CUT_EXTRUDE6_DEPTH, mode=Mode.SUBTRACT)

    # Fillet12
    fillet12_edges = [part.edges().sort_by_distance(p)[0] for p in [
        (37.51300955, 4, 27.01300955),
        (35.391689207, 4, 24.891689207),
        (24.608310793, 4, 24.891689207),
        (22.48699045, 4, 27.01300955),
        (-24.608310793, 4, 24.891689207),
        (-22.48699045, 4, 27.01300955),
        (-35.391689207, 4, 24.891689207),
        (-37.51300955, 4, 27.01300955),
    ]]
    fillet(fillet12_edges, radius=FILLET12_R - 0.0001)  # a hair under: the kernel refuses the full size


solid = part.part
